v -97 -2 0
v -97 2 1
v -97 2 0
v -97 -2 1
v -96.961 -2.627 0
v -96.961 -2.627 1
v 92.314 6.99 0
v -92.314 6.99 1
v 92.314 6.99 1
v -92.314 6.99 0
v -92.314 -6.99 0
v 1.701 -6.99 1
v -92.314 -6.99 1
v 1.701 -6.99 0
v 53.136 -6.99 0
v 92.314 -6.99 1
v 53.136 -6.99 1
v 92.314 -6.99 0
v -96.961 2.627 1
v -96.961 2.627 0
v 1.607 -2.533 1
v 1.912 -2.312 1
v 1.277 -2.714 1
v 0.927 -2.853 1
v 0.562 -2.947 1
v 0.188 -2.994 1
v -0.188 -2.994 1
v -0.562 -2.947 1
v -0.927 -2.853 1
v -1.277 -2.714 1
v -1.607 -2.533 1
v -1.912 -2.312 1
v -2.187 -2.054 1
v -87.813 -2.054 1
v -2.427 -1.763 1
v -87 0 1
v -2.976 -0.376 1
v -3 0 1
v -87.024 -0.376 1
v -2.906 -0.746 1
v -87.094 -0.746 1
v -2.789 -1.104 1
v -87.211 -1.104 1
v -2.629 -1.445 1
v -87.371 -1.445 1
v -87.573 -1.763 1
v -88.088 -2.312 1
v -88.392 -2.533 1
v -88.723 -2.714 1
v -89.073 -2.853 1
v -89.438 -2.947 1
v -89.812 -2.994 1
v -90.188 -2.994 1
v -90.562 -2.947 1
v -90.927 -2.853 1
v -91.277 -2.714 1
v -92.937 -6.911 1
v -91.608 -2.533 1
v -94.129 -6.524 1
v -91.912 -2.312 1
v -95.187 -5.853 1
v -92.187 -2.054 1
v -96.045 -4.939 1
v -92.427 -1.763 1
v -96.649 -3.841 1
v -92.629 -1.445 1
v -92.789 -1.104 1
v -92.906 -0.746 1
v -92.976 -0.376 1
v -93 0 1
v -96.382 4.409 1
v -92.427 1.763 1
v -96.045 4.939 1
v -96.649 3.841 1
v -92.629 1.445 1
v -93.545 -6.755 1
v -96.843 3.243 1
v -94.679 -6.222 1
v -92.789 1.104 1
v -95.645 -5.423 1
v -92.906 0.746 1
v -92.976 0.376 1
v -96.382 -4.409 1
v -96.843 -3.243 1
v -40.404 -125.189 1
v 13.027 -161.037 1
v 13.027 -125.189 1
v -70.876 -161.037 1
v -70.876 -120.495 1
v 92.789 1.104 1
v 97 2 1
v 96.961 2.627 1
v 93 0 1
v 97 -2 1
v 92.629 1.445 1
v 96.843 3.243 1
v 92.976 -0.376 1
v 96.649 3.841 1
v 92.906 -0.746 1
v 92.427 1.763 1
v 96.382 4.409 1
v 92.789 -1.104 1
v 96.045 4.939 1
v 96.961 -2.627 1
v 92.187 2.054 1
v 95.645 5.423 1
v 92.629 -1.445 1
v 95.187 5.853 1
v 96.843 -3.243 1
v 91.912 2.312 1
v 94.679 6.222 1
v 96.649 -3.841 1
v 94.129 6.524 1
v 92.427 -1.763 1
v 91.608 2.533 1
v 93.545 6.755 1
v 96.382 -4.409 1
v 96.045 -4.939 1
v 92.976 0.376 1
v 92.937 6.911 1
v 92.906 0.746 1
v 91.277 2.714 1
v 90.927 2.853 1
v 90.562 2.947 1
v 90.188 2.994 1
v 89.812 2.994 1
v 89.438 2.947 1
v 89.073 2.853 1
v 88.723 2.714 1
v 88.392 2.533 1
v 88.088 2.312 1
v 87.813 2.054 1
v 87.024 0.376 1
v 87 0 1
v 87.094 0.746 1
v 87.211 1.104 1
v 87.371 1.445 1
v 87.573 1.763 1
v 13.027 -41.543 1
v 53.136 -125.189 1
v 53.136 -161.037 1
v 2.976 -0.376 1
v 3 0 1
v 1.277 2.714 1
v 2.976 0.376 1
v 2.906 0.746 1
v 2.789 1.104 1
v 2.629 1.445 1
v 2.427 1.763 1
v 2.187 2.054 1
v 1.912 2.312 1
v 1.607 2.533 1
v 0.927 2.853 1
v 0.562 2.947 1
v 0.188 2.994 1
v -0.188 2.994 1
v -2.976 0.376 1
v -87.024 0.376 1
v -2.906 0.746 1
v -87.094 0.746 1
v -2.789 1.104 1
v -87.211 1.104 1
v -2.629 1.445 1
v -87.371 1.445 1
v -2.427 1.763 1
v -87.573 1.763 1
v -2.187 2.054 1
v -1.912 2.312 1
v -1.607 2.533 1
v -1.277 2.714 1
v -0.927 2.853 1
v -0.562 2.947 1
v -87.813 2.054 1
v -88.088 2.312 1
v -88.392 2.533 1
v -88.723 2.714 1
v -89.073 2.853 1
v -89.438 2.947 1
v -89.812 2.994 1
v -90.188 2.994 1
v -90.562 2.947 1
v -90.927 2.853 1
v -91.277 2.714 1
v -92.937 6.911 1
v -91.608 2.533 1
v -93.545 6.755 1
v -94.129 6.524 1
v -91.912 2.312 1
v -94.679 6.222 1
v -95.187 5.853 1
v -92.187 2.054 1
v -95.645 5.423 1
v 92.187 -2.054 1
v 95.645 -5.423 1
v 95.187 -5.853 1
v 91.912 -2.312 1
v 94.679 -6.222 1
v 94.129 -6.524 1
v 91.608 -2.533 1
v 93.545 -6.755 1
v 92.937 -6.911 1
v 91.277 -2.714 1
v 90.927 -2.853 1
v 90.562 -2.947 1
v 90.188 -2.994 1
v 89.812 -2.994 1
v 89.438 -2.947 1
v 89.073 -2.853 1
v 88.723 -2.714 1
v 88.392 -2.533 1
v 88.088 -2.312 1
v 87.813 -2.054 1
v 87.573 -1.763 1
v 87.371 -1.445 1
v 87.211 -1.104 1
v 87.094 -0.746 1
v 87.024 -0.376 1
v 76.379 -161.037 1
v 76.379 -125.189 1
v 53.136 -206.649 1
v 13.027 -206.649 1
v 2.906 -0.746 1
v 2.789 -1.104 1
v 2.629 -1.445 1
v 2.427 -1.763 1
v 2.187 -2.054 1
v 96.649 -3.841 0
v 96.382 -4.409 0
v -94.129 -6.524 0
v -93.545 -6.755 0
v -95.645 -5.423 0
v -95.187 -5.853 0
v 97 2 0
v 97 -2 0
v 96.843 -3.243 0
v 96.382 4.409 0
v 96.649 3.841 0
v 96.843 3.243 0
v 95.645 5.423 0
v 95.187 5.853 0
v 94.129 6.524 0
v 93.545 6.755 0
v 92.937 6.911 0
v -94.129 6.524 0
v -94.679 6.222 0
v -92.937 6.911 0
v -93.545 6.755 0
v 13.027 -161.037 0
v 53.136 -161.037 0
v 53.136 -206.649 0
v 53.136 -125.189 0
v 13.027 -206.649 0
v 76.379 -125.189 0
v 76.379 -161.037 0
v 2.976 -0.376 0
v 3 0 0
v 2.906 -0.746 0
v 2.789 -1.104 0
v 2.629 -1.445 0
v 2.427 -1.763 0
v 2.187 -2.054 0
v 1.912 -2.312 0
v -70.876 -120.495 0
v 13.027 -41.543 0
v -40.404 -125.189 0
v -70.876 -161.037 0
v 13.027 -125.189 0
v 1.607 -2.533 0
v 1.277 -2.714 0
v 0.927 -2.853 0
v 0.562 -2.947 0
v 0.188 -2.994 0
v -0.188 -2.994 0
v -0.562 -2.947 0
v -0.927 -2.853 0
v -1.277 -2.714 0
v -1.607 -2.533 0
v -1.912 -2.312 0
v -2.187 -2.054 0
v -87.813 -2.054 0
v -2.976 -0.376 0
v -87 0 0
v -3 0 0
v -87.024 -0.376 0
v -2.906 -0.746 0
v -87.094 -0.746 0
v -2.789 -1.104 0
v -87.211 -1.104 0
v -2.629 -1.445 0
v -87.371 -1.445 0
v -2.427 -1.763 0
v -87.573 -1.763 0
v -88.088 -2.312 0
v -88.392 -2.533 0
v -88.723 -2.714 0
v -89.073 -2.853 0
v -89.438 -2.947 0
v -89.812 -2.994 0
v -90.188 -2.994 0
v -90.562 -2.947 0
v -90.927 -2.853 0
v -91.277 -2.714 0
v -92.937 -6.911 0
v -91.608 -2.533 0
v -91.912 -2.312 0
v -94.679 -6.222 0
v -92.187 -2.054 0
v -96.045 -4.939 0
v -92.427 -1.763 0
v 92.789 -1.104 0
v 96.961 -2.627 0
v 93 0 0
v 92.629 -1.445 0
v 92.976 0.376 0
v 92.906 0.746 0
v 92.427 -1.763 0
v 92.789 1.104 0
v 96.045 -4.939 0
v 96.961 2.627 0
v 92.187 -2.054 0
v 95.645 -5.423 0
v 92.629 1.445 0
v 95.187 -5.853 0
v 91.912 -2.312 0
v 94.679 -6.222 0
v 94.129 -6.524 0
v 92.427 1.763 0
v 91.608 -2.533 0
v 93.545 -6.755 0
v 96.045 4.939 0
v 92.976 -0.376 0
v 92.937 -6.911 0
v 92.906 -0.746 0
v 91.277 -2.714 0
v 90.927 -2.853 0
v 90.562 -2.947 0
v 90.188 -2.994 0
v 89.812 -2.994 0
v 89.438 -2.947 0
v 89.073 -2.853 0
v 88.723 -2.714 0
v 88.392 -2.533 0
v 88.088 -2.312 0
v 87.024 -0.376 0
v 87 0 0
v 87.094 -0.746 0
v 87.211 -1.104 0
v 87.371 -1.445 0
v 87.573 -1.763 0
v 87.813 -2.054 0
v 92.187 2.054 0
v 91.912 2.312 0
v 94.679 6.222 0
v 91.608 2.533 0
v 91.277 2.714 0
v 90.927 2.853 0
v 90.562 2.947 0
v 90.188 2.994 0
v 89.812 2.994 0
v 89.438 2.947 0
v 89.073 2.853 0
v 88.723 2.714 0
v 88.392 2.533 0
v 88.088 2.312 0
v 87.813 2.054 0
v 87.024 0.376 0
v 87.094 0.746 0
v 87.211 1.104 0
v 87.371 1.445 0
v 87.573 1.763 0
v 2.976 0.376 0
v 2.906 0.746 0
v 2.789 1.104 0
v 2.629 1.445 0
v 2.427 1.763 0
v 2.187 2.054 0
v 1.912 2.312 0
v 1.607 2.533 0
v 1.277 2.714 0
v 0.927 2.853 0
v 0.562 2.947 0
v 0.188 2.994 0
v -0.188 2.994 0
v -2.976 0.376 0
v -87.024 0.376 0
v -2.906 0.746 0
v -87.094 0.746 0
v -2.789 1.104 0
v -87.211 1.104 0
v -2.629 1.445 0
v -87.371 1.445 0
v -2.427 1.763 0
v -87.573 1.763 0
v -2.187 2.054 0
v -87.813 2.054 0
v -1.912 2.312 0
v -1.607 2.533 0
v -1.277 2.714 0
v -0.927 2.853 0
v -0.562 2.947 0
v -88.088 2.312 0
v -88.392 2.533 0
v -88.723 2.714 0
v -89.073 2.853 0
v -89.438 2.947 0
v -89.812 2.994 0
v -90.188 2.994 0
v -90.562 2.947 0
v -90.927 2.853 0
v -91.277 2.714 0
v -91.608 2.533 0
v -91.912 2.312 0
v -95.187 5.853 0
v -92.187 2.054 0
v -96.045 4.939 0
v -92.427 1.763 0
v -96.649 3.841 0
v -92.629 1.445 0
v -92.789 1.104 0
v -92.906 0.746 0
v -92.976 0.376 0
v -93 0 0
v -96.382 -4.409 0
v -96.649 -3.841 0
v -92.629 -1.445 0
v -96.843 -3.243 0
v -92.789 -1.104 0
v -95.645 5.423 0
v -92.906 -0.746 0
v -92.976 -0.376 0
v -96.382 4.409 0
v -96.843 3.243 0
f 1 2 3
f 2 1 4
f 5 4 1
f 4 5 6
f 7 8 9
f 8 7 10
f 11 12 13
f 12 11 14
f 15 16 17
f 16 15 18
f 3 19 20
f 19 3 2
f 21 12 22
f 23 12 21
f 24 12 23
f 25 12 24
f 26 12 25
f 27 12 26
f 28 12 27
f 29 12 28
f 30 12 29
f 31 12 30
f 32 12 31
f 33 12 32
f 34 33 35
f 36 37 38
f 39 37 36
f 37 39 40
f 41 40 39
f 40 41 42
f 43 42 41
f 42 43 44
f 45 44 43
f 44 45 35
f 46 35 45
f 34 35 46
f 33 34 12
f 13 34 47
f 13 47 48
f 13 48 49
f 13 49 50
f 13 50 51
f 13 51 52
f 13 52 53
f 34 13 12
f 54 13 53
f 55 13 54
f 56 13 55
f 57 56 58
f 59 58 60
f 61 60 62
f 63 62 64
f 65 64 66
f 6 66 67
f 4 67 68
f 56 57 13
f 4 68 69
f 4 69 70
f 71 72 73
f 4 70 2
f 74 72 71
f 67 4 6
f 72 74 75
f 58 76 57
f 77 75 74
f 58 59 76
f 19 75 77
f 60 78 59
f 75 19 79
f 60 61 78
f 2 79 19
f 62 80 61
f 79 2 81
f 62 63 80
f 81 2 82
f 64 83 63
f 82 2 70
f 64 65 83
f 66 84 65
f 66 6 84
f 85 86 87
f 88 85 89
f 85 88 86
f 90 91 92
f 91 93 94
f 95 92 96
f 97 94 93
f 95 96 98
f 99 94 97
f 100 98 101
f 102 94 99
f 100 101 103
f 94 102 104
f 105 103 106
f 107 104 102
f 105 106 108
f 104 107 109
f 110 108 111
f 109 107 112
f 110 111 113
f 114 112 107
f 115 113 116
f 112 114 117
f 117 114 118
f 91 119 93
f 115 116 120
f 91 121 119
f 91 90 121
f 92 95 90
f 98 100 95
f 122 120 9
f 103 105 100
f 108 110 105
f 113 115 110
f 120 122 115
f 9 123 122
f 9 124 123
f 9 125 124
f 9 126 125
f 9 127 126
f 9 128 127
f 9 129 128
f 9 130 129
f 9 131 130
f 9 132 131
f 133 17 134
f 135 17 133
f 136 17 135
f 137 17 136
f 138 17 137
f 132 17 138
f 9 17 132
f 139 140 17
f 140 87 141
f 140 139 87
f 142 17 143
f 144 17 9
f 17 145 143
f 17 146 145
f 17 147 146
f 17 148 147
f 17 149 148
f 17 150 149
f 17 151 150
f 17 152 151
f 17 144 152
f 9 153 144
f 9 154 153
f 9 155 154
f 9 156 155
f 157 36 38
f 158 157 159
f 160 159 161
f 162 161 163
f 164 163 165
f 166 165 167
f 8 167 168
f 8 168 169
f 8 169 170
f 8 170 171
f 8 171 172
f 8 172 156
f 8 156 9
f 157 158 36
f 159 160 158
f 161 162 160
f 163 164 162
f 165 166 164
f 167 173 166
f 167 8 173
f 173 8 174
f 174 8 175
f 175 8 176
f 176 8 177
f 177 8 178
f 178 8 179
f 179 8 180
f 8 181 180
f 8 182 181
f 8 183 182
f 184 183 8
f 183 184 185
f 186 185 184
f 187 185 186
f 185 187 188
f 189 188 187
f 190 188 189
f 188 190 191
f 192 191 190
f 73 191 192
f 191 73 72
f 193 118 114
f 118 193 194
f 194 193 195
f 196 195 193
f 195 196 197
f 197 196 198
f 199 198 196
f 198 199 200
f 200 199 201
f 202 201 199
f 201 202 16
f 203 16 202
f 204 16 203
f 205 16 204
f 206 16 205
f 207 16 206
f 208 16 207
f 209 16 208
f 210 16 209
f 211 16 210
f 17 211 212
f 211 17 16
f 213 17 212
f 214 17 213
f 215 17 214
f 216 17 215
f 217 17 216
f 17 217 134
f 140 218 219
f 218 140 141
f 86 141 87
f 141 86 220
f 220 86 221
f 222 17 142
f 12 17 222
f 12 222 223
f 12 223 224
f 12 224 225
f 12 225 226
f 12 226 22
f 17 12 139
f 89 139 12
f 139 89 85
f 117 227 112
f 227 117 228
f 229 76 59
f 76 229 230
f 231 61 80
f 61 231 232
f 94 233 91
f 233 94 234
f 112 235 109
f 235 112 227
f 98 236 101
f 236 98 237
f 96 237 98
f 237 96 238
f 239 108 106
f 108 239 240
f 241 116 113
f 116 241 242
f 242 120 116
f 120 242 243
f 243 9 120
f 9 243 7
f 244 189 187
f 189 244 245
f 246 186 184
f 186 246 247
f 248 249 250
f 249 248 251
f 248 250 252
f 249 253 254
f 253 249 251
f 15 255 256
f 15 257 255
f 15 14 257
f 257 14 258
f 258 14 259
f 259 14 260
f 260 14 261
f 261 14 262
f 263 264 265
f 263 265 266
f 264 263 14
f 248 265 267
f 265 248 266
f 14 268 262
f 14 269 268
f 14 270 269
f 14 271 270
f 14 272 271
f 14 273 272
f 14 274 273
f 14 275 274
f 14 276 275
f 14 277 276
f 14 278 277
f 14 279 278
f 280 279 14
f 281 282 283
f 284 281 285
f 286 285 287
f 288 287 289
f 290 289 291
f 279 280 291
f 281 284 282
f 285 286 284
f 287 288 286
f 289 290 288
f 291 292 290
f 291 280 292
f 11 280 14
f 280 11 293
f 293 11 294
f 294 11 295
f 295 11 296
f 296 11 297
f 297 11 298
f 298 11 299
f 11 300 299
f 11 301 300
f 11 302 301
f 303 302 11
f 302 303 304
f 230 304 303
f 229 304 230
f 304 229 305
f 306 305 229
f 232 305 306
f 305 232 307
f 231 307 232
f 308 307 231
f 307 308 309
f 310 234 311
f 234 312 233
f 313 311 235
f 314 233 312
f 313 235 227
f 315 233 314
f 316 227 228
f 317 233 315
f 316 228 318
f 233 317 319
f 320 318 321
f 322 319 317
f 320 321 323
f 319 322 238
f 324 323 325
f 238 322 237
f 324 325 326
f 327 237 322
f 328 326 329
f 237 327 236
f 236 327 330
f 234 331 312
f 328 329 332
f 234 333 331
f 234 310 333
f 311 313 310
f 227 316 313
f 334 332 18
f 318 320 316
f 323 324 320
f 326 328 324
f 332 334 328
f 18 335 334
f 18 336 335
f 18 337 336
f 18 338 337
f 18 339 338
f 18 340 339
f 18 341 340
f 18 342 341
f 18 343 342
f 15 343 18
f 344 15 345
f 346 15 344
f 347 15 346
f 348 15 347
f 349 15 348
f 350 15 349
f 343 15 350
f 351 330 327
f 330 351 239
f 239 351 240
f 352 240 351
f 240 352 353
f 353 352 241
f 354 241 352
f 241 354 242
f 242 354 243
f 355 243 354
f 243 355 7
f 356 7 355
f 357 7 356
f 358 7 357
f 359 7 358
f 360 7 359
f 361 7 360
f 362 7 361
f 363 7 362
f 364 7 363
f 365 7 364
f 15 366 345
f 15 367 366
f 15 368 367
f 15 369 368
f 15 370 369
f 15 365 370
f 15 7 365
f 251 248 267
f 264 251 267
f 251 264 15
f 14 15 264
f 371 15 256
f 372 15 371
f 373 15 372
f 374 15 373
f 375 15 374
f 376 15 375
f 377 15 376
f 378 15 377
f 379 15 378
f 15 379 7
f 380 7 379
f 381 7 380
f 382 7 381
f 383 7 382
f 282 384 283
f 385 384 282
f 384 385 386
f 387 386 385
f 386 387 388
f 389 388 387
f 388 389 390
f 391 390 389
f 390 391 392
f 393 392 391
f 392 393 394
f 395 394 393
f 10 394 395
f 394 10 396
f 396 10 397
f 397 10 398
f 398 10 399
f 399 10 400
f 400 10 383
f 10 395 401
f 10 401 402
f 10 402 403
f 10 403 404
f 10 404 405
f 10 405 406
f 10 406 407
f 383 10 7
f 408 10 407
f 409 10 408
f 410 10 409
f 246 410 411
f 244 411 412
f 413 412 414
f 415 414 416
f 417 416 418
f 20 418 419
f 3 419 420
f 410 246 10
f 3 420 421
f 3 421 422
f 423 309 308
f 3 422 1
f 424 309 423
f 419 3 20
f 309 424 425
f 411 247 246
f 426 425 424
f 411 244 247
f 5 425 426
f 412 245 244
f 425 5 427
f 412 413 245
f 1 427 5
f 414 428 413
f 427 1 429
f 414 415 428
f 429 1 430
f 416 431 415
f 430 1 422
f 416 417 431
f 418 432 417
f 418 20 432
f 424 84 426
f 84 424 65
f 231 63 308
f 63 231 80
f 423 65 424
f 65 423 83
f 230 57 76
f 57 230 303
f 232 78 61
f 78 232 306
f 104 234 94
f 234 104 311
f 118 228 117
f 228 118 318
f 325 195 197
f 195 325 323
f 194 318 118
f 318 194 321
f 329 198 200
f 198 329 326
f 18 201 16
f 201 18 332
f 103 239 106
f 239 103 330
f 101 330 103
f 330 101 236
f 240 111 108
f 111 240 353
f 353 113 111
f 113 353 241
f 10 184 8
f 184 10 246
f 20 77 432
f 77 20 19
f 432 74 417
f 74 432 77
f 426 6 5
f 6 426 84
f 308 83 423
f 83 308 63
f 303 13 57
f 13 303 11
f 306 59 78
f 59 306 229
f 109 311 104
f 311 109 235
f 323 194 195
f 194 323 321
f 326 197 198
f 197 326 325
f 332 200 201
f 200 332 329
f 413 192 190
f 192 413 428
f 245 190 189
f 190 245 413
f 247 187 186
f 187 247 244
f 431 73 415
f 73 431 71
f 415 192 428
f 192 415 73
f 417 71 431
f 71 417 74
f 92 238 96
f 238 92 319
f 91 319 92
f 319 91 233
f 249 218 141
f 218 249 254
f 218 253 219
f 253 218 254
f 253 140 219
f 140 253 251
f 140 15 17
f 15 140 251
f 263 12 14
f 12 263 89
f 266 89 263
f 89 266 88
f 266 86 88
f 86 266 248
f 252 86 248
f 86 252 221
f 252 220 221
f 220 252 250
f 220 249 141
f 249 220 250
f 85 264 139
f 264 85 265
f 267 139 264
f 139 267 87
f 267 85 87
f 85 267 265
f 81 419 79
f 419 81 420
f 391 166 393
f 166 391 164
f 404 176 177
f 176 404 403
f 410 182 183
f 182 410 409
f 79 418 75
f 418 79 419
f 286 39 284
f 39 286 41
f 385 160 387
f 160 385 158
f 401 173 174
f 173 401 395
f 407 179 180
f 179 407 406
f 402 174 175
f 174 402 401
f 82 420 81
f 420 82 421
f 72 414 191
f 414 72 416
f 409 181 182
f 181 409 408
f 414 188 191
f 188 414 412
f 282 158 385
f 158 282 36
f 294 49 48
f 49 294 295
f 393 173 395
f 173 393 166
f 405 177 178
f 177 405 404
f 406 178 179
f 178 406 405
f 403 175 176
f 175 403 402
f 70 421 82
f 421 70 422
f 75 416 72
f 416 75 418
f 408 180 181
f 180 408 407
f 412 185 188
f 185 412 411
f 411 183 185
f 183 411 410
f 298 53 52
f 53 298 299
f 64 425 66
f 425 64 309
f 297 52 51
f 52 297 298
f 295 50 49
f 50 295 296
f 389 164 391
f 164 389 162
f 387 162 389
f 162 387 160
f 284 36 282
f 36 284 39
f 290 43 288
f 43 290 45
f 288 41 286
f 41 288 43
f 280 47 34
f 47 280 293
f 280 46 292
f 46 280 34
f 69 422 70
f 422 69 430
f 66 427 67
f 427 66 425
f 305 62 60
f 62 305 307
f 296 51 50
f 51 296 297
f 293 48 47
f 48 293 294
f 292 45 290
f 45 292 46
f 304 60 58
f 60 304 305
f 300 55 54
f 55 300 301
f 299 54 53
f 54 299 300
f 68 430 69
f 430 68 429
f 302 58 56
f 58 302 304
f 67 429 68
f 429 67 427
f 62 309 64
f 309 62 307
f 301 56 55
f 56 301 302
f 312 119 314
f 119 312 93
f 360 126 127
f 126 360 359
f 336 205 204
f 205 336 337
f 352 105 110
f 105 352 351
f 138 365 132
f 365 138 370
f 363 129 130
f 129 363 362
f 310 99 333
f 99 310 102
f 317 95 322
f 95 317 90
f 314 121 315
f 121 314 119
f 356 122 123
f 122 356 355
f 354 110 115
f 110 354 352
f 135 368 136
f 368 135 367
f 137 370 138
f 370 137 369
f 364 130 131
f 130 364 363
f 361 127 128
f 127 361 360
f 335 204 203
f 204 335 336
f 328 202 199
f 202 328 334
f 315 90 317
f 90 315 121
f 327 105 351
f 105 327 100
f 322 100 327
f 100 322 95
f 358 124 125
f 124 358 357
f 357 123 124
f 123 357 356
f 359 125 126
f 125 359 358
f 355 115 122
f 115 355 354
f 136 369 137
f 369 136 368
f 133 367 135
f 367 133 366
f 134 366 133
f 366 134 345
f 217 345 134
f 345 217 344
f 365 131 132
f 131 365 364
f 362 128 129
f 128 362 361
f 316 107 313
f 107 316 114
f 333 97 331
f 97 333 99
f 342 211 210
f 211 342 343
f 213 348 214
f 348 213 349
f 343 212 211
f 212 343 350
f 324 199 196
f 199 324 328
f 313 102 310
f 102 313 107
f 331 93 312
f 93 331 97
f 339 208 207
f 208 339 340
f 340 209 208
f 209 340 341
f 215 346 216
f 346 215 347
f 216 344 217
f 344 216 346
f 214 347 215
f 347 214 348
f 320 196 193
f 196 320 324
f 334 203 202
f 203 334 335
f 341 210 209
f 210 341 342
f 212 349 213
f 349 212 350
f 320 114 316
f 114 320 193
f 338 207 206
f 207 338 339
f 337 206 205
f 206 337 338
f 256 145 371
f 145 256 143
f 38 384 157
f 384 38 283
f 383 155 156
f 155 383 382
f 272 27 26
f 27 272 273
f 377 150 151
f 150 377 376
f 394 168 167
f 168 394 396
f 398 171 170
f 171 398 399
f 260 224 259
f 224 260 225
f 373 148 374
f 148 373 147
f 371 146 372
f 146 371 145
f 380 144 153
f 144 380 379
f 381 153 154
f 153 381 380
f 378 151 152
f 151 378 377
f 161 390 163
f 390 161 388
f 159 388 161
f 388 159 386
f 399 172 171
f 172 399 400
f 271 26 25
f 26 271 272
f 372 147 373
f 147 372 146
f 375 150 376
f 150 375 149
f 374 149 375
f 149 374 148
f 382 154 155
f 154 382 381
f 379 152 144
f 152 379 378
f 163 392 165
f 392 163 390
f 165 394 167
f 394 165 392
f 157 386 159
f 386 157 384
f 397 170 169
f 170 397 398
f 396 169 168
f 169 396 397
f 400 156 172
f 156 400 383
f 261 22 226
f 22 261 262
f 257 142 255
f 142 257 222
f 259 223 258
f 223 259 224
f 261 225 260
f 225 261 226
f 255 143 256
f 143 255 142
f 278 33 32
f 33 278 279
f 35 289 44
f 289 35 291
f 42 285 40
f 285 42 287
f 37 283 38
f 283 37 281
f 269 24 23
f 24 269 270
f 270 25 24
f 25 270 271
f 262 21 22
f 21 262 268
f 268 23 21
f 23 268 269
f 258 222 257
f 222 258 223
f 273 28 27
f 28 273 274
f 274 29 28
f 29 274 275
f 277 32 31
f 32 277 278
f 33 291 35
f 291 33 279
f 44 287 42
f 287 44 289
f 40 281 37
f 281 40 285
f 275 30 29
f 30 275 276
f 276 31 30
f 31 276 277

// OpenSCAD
$fn = 50;


difference() {
	union() {
		translate(v = [0, 0, 0]) {
			rotate(a = [0, 0, 0]) {
				hull() {
					translate(v = [-92.0000000000, 2.0000000000, 0]) {
						rotate(a = [0, 0, 0]) {
							translate(v = [0, 0, 0]) {
								rotate(a = [0, 0, 0]) {
									cylinder(h = 1, r = 5);
								}
							}
						}
					}
					translate(v = [92.0000000000, 2.0000000000, 0]) {
						rotate(a = [0, 0, 0]) {
							translate(v = [0, 0, 0]) {
								rotate(a = [0, 0, 0]) {
									cylinder(h = 1, r = 5);
								}
							}
						}
					}
					translate(v = [-92.0000000000, -2.0000000000, 0]) {
						rotate(a = [0, 0, 0]) {
							translate(v = [0, 0, 0]) {
								rotate(a = [0, 0, 0]) {
									cylinder(h = 1, r = 5);
								}
							}
						}
					}
					translate(v = [92.0000000000, -2.0000000000, 0]) {
						rotate(a = [0, 0, 0]) {
							translate(v = [0, 0, 0]) {
								rotate(a = [0, 0, 0]) {
									cylinder(h = 1, r = 5);
								}
							}
						}
					}
				}
			}
		}
		translate(v = [0, 0, 0]) {
			rotate(a = [0, 0, 0]) {
				linear_extrude(height = 1) {
					text(font = "DejaVu Sans Mono:style=Bold", halign = "center", size = 209.0000000000, text = "4", valign = "top");
				}
			}
		}
	}
	union() {
		translate(v = [-90.0000000000, 0.0000000000, -125.0000000000]) {
			rotate(a = [0, 0, 0]) {
				cylinder(h = 250, r = 3.0000000000);
			}
		}
		translate(v = [90.0000000000, 0.0000000000, -125.0000000000]) {
			rotate(a = [0, 0, 0]) {
				cylinder(h = 250, r = 3.0000000000);
			}
		}
		translate(v = [90.0000000000, 0.0000000000, -125.0000000000]) {
			rotate(a = [0, 0, 0]) {
				cylinder(h = 250, r = 3.0000000000);
			}
		}
		translate(v = [0, 0, -125.0000000000]) {
			rotate(a = [0, 0, 0]) {
				cylinder(h = 250, r = 3.0000000000);
			}
		}
	}
}
